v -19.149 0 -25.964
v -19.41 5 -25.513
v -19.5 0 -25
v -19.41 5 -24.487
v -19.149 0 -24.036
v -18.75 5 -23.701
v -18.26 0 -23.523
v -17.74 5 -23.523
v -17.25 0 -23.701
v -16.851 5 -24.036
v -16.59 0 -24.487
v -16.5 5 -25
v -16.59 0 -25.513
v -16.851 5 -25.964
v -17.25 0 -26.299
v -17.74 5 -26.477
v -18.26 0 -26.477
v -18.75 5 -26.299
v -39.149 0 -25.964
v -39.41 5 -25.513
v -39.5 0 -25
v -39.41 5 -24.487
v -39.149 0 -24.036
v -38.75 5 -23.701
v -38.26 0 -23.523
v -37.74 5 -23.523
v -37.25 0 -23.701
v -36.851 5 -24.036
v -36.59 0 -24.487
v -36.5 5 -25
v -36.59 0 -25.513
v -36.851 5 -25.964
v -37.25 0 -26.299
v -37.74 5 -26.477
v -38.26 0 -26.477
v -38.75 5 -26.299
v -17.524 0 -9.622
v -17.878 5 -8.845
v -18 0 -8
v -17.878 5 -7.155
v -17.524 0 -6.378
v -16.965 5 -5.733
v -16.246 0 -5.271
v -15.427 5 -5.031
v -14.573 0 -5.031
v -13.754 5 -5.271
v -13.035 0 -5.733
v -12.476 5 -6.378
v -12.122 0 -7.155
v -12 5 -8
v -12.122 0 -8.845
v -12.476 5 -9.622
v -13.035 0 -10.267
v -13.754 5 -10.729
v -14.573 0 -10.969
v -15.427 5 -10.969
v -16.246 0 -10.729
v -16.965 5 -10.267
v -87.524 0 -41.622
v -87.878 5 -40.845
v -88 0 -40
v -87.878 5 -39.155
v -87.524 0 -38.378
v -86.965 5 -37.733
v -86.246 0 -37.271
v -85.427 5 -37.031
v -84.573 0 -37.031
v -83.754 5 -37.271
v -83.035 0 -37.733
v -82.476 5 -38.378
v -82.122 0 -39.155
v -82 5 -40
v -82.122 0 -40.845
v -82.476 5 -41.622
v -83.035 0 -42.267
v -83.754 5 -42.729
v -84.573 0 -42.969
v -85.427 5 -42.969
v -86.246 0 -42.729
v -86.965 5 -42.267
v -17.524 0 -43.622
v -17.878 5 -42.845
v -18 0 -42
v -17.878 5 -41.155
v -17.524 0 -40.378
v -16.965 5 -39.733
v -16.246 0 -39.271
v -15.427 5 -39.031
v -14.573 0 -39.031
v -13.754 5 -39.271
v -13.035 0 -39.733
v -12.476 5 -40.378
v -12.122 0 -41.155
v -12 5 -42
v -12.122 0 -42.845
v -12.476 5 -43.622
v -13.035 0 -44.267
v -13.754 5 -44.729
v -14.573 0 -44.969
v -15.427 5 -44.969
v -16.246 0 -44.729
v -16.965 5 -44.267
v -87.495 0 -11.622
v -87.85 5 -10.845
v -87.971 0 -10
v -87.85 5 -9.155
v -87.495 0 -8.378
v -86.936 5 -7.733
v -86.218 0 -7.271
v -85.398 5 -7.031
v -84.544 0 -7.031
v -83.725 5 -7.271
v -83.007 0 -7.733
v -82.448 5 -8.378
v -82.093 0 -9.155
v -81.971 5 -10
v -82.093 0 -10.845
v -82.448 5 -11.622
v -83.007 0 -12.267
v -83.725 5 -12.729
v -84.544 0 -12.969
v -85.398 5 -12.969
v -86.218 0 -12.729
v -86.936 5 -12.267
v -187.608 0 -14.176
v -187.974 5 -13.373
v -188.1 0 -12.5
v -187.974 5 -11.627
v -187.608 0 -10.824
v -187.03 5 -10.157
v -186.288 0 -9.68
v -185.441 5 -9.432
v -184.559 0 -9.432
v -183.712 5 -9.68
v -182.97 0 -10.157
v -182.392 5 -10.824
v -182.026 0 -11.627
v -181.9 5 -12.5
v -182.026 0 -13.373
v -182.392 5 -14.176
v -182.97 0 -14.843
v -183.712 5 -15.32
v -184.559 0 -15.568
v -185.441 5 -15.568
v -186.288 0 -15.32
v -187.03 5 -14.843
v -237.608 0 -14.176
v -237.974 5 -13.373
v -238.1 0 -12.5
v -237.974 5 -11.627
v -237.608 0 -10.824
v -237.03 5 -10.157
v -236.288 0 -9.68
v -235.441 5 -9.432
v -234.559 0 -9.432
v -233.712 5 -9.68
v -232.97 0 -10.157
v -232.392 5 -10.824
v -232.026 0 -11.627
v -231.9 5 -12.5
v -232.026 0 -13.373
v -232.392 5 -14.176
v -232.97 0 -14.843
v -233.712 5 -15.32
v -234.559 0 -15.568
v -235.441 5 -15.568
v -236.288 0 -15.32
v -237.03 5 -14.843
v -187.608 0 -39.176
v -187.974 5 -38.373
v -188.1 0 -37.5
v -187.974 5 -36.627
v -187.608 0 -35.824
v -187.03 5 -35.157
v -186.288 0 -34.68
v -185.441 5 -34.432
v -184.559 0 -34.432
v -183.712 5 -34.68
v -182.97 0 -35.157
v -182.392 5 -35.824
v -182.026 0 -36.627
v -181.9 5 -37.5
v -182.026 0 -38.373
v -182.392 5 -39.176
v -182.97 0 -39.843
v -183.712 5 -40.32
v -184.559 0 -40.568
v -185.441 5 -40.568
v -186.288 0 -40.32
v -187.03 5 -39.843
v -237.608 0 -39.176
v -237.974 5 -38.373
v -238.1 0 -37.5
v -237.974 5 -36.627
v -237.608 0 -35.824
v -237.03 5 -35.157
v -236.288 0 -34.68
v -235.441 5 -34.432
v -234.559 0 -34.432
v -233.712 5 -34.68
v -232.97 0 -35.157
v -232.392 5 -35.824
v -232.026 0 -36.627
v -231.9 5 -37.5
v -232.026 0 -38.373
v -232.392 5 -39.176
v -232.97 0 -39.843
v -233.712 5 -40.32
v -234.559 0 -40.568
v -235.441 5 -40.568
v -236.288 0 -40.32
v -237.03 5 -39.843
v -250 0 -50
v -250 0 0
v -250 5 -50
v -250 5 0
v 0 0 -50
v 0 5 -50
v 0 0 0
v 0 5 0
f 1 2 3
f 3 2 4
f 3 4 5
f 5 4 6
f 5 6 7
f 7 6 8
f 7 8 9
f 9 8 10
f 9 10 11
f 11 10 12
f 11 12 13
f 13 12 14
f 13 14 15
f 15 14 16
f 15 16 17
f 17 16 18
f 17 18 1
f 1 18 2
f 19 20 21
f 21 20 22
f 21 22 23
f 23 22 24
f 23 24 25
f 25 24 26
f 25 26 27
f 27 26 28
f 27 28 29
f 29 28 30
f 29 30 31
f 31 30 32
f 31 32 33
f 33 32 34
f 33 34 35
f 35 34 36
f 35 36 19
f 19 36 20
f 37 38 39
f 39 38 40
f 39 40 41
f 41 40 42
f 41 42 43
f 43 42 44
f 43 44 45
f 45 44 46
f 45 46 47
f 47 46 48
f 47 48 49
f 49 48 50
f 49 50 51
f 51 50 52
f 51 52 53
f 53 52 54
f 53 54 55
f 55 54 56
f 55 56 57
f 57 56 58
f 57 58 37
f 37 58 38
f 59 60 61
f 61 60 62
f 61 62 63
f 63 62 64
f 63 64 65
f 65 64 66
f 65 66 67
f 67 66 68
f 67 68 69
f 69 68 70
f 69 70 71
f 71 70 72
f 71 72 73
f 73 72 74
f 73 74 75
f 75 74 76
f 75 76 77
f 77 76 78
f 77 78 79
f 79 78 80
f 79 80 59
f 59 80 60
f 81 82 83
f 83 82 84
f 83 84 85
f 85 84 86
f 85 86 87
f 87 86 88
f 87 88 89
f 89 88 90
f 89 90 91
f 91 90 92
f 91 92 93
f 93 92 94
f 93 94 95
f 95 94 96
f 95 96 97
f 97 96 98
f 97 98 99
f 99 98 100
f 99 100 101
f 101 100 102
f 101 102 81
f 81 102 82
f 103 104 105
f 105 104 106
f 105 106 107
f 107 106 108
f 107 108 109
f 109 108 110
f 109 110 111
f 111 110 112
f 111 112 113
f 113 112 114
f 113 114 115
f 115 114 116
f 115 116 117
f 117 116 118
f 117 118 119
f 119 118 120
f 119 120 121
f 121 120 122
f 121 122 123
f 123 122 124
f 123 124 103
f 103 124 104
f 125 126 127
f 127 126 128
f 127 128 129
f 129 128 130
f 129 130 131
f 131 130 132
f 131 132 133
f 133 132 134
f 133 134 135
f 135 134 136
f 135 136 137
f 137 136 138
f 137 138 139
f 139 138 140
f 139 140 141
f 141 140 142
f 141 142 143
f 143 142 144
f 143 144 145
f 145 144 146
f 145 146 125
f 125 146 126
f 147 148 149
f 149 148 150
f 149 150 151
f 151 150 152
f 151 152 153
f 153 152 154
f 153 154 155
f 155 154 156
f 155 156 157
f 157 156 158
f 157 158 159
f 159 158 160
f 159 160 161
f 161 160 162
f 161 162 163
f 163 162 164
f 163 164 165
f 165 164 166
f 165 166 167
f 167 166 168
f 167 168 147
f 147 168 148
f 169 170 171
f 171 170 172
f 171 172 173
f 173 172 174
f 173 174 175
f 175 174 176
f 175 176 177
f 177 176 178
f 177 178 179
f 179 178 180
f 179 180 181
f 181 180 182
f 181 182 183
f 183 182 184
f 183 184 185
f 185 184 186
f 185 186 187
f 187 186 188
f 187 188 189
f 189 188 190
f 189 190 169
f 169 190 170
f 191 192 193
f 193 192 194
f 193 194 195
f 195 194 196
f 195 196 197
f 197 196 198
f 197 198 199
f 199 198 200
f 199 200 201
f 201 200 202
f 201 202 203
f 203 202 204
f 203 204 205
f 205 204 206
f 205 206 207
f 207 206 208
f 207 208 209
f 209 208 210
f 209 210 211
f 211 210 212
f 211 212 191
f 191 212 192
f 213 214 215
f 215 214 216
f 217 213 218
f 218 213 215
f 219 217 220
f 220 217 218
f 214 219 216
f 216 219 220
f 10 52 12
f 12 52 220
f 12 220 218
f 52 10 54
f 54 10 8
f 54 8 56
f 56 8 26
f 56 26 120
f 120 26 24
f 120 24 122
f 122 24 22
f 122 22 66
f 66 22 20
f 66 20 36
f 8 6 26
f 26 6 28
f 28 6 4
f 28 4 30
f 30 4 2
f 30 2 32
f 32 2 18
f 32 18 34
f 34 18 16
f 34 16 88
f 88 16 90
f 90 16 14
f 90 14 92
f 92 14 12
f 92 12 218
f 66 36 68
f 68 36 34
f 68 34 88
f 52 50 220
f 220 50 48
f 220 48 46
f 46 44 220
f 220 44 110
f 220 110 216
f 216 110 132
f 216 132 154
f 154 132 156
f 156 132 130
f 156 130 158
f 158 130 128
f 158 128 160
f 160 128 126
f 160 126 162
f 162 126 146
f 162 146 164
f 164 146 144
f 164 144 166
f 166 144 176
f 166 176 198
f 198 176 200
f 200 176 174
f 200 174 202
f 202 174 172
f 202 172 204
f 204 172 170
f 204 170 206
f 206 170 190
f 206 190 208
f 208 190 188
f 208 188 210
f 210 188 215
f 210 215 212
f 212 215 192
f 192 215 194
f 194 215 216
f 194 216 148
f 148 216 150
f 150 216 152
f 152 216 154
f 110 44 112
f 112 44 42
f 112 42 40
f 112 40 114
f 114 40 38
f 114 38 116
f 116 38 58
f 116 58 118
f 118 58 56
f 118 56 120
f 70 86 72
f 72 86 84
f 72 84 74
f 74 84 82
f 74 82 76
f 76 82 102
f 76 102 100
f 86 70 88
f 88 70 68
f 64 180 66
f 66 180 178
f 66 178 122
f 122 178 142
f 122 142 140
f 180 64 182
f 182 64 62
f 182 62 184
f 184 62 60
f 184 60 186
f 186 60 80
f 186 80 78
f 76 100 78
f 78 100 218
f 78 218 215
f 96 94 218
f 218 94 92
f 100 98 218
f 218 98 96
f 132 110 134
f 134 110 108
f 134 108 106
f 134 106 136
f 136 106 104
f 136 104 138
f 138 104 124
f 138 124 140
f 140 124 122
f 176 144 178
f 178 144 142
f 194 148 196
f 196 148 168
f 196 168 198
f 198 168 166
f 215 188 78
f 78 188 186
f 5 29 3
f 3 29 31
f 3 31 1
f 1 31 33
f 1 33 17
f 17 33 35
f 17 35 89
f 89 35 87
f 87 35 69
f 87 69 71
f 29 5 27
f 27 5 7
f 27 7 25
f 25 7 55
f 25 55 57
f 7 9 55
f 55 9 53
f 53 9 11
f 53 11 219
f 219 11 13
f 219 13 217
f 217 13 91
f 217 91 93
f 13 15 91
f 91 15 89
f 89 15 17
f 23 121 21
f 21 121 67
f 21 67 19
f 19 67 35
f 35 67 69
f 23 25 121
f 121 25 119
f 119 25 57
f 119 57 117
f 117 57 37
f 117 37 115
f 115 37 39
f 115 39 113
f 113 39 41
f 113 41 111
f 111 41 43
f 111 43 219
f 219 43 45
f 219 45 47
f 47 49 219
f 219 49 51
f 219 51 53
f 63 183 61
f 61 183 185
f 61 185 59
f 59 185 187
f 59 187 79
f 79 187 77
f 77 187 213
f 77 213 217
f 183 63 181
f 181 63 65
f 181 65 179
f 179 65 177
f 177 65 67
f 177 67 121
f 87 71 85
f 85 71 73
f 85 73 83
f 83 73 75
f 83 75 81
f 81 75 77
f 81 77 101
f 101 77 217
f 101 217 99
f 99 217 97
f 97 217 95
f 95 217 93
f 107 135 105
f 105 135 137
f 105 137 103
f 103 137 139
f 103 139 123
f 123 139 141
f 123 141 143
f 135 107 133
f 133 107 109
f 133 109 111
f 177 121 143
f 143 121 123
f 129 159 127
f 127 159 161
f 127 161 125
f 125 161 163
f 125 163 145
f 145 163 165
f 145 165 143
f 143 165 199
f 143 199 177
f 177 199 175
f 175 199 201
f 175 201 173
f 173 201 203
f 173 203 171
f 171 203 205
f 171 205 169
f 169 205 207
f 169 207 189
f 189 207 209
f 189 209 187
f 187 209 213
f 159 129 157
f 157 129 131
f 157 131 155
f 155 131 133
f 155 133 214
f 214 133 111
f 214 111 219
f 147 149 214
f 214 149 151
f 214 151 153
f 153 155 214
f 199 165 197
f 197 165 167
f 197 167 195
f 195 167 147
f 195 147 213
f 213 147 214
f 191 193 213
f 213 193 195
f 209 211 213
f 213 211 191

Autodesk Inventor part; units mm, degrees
ref_plane "YZ-Ebene" through (0, 0, 0) normal (1, 0, 0) x (0, 1, 0)
ref_plane "XZ-Ebene" through (0, 0, 0) normal (0, 1, 0) x (-1, 0, 0)
ref_plane "XY-Ebene" through (0, 0, 0) normal (0, 0, 1) x (1, 0, 0)
sketch "Skizze1" plane through (0, 0, 0) normal (0, 1, 0) x (-1, 0, 0)
  line L0 (250, -50) -> (0, -50)
  line L1 (0, -50) -> (0, 0)
  line L2 (0, 0) -> (250, 0)
  line L3 (250, 0) -> (250, -50)
  dimension "d0" = 250
  dimension "d1" = 50
extrude "Extrusion1" add sketch "Skizze1" along normal blind 5
sketch "Skizze2" plane through (0, 5, 0) normal (0, 1, 0) x (1, 0, 0)
  circle A0 centre (-235, 37.5) radius 3.1
  circle A1 centre (-185, 37.5) radius 3.1
  circle A2 centre (-235, 12.5) radius 3.1
  circle A3 centre (-185, 12.5) radius 3.1
  line L0 (0, 50) -> (-250, 50) projected
  line L1 (-250, 50) -> (-250, 0) projected
  point P0 (0, 0)
  dimension "d4" = 6.2
  dimension "d5" = 6.2
  dimension "d6" = 6.2
  dimension "d7" = 6.2
  dimension "d8" = 12.5
  dimension "d9" = 25
  dimension "d10" = 25
  dimension "d11" = 50
  dimension "d12" = 50
  dimension "d13" = 15
  dimension "d14" = 15
  dimension "d15" = 12.5
extrude "Extrusion2" cut sketch "Skizze2" against normal blind 6
sketch "Skizze3" plane through (0, 5, 0) normal (0, 1, 0) x (1, 0, 0)
  circle A0 centre (-15, 42) radius 3
  circle A1 centre (-15, 8) radius 3
  circle A2 centre (-84.9714, 10) radius 3
  circle A3 centre (-85, 40) radius 3
  line L0 (0, 0) -> (0, 50) projected
  line L1 (0, 50) -> (-250, 50) projected
  dimension "d18" = 6
  dimension "d19" = 6
  dimension "d20" = 6
  dimension "d21" = 6
  dimension "d22" = 15
  dimension "d23" = 15
  dimension "d24" = 70
  dimension "d25" = 70
  dimension "d26" = 34
  dimension "d27" = 30
  dimension "d28" = 10
  dimension "d29" = 8
extrude "Extrusion3" cut sketch "Skizze3" against normal blind 10
sketch "Skizze4" plane through (0, 5, 0) normal (0, 1, 0) x (1, 0, 0)
  circle A0 centre (-38, 25) radius 1.5
  circle A1 centre (-18, 25) radius 1.5
  line L0 (0, 50) -> (-250, 50) projected
  line L1 (0, 0) -> (0, 50) projected
  dimension "d32" = 3
  dimension "d33" = 3
  dimension "d34" = 25
  dimension "d35" = 25
  dimension "d36" = 18
  dimension "d37" = 20
extrude "Extrusion4" cut sketch "Skizze4" against normal blind 10
properties part number "adapter_chipshouter"
